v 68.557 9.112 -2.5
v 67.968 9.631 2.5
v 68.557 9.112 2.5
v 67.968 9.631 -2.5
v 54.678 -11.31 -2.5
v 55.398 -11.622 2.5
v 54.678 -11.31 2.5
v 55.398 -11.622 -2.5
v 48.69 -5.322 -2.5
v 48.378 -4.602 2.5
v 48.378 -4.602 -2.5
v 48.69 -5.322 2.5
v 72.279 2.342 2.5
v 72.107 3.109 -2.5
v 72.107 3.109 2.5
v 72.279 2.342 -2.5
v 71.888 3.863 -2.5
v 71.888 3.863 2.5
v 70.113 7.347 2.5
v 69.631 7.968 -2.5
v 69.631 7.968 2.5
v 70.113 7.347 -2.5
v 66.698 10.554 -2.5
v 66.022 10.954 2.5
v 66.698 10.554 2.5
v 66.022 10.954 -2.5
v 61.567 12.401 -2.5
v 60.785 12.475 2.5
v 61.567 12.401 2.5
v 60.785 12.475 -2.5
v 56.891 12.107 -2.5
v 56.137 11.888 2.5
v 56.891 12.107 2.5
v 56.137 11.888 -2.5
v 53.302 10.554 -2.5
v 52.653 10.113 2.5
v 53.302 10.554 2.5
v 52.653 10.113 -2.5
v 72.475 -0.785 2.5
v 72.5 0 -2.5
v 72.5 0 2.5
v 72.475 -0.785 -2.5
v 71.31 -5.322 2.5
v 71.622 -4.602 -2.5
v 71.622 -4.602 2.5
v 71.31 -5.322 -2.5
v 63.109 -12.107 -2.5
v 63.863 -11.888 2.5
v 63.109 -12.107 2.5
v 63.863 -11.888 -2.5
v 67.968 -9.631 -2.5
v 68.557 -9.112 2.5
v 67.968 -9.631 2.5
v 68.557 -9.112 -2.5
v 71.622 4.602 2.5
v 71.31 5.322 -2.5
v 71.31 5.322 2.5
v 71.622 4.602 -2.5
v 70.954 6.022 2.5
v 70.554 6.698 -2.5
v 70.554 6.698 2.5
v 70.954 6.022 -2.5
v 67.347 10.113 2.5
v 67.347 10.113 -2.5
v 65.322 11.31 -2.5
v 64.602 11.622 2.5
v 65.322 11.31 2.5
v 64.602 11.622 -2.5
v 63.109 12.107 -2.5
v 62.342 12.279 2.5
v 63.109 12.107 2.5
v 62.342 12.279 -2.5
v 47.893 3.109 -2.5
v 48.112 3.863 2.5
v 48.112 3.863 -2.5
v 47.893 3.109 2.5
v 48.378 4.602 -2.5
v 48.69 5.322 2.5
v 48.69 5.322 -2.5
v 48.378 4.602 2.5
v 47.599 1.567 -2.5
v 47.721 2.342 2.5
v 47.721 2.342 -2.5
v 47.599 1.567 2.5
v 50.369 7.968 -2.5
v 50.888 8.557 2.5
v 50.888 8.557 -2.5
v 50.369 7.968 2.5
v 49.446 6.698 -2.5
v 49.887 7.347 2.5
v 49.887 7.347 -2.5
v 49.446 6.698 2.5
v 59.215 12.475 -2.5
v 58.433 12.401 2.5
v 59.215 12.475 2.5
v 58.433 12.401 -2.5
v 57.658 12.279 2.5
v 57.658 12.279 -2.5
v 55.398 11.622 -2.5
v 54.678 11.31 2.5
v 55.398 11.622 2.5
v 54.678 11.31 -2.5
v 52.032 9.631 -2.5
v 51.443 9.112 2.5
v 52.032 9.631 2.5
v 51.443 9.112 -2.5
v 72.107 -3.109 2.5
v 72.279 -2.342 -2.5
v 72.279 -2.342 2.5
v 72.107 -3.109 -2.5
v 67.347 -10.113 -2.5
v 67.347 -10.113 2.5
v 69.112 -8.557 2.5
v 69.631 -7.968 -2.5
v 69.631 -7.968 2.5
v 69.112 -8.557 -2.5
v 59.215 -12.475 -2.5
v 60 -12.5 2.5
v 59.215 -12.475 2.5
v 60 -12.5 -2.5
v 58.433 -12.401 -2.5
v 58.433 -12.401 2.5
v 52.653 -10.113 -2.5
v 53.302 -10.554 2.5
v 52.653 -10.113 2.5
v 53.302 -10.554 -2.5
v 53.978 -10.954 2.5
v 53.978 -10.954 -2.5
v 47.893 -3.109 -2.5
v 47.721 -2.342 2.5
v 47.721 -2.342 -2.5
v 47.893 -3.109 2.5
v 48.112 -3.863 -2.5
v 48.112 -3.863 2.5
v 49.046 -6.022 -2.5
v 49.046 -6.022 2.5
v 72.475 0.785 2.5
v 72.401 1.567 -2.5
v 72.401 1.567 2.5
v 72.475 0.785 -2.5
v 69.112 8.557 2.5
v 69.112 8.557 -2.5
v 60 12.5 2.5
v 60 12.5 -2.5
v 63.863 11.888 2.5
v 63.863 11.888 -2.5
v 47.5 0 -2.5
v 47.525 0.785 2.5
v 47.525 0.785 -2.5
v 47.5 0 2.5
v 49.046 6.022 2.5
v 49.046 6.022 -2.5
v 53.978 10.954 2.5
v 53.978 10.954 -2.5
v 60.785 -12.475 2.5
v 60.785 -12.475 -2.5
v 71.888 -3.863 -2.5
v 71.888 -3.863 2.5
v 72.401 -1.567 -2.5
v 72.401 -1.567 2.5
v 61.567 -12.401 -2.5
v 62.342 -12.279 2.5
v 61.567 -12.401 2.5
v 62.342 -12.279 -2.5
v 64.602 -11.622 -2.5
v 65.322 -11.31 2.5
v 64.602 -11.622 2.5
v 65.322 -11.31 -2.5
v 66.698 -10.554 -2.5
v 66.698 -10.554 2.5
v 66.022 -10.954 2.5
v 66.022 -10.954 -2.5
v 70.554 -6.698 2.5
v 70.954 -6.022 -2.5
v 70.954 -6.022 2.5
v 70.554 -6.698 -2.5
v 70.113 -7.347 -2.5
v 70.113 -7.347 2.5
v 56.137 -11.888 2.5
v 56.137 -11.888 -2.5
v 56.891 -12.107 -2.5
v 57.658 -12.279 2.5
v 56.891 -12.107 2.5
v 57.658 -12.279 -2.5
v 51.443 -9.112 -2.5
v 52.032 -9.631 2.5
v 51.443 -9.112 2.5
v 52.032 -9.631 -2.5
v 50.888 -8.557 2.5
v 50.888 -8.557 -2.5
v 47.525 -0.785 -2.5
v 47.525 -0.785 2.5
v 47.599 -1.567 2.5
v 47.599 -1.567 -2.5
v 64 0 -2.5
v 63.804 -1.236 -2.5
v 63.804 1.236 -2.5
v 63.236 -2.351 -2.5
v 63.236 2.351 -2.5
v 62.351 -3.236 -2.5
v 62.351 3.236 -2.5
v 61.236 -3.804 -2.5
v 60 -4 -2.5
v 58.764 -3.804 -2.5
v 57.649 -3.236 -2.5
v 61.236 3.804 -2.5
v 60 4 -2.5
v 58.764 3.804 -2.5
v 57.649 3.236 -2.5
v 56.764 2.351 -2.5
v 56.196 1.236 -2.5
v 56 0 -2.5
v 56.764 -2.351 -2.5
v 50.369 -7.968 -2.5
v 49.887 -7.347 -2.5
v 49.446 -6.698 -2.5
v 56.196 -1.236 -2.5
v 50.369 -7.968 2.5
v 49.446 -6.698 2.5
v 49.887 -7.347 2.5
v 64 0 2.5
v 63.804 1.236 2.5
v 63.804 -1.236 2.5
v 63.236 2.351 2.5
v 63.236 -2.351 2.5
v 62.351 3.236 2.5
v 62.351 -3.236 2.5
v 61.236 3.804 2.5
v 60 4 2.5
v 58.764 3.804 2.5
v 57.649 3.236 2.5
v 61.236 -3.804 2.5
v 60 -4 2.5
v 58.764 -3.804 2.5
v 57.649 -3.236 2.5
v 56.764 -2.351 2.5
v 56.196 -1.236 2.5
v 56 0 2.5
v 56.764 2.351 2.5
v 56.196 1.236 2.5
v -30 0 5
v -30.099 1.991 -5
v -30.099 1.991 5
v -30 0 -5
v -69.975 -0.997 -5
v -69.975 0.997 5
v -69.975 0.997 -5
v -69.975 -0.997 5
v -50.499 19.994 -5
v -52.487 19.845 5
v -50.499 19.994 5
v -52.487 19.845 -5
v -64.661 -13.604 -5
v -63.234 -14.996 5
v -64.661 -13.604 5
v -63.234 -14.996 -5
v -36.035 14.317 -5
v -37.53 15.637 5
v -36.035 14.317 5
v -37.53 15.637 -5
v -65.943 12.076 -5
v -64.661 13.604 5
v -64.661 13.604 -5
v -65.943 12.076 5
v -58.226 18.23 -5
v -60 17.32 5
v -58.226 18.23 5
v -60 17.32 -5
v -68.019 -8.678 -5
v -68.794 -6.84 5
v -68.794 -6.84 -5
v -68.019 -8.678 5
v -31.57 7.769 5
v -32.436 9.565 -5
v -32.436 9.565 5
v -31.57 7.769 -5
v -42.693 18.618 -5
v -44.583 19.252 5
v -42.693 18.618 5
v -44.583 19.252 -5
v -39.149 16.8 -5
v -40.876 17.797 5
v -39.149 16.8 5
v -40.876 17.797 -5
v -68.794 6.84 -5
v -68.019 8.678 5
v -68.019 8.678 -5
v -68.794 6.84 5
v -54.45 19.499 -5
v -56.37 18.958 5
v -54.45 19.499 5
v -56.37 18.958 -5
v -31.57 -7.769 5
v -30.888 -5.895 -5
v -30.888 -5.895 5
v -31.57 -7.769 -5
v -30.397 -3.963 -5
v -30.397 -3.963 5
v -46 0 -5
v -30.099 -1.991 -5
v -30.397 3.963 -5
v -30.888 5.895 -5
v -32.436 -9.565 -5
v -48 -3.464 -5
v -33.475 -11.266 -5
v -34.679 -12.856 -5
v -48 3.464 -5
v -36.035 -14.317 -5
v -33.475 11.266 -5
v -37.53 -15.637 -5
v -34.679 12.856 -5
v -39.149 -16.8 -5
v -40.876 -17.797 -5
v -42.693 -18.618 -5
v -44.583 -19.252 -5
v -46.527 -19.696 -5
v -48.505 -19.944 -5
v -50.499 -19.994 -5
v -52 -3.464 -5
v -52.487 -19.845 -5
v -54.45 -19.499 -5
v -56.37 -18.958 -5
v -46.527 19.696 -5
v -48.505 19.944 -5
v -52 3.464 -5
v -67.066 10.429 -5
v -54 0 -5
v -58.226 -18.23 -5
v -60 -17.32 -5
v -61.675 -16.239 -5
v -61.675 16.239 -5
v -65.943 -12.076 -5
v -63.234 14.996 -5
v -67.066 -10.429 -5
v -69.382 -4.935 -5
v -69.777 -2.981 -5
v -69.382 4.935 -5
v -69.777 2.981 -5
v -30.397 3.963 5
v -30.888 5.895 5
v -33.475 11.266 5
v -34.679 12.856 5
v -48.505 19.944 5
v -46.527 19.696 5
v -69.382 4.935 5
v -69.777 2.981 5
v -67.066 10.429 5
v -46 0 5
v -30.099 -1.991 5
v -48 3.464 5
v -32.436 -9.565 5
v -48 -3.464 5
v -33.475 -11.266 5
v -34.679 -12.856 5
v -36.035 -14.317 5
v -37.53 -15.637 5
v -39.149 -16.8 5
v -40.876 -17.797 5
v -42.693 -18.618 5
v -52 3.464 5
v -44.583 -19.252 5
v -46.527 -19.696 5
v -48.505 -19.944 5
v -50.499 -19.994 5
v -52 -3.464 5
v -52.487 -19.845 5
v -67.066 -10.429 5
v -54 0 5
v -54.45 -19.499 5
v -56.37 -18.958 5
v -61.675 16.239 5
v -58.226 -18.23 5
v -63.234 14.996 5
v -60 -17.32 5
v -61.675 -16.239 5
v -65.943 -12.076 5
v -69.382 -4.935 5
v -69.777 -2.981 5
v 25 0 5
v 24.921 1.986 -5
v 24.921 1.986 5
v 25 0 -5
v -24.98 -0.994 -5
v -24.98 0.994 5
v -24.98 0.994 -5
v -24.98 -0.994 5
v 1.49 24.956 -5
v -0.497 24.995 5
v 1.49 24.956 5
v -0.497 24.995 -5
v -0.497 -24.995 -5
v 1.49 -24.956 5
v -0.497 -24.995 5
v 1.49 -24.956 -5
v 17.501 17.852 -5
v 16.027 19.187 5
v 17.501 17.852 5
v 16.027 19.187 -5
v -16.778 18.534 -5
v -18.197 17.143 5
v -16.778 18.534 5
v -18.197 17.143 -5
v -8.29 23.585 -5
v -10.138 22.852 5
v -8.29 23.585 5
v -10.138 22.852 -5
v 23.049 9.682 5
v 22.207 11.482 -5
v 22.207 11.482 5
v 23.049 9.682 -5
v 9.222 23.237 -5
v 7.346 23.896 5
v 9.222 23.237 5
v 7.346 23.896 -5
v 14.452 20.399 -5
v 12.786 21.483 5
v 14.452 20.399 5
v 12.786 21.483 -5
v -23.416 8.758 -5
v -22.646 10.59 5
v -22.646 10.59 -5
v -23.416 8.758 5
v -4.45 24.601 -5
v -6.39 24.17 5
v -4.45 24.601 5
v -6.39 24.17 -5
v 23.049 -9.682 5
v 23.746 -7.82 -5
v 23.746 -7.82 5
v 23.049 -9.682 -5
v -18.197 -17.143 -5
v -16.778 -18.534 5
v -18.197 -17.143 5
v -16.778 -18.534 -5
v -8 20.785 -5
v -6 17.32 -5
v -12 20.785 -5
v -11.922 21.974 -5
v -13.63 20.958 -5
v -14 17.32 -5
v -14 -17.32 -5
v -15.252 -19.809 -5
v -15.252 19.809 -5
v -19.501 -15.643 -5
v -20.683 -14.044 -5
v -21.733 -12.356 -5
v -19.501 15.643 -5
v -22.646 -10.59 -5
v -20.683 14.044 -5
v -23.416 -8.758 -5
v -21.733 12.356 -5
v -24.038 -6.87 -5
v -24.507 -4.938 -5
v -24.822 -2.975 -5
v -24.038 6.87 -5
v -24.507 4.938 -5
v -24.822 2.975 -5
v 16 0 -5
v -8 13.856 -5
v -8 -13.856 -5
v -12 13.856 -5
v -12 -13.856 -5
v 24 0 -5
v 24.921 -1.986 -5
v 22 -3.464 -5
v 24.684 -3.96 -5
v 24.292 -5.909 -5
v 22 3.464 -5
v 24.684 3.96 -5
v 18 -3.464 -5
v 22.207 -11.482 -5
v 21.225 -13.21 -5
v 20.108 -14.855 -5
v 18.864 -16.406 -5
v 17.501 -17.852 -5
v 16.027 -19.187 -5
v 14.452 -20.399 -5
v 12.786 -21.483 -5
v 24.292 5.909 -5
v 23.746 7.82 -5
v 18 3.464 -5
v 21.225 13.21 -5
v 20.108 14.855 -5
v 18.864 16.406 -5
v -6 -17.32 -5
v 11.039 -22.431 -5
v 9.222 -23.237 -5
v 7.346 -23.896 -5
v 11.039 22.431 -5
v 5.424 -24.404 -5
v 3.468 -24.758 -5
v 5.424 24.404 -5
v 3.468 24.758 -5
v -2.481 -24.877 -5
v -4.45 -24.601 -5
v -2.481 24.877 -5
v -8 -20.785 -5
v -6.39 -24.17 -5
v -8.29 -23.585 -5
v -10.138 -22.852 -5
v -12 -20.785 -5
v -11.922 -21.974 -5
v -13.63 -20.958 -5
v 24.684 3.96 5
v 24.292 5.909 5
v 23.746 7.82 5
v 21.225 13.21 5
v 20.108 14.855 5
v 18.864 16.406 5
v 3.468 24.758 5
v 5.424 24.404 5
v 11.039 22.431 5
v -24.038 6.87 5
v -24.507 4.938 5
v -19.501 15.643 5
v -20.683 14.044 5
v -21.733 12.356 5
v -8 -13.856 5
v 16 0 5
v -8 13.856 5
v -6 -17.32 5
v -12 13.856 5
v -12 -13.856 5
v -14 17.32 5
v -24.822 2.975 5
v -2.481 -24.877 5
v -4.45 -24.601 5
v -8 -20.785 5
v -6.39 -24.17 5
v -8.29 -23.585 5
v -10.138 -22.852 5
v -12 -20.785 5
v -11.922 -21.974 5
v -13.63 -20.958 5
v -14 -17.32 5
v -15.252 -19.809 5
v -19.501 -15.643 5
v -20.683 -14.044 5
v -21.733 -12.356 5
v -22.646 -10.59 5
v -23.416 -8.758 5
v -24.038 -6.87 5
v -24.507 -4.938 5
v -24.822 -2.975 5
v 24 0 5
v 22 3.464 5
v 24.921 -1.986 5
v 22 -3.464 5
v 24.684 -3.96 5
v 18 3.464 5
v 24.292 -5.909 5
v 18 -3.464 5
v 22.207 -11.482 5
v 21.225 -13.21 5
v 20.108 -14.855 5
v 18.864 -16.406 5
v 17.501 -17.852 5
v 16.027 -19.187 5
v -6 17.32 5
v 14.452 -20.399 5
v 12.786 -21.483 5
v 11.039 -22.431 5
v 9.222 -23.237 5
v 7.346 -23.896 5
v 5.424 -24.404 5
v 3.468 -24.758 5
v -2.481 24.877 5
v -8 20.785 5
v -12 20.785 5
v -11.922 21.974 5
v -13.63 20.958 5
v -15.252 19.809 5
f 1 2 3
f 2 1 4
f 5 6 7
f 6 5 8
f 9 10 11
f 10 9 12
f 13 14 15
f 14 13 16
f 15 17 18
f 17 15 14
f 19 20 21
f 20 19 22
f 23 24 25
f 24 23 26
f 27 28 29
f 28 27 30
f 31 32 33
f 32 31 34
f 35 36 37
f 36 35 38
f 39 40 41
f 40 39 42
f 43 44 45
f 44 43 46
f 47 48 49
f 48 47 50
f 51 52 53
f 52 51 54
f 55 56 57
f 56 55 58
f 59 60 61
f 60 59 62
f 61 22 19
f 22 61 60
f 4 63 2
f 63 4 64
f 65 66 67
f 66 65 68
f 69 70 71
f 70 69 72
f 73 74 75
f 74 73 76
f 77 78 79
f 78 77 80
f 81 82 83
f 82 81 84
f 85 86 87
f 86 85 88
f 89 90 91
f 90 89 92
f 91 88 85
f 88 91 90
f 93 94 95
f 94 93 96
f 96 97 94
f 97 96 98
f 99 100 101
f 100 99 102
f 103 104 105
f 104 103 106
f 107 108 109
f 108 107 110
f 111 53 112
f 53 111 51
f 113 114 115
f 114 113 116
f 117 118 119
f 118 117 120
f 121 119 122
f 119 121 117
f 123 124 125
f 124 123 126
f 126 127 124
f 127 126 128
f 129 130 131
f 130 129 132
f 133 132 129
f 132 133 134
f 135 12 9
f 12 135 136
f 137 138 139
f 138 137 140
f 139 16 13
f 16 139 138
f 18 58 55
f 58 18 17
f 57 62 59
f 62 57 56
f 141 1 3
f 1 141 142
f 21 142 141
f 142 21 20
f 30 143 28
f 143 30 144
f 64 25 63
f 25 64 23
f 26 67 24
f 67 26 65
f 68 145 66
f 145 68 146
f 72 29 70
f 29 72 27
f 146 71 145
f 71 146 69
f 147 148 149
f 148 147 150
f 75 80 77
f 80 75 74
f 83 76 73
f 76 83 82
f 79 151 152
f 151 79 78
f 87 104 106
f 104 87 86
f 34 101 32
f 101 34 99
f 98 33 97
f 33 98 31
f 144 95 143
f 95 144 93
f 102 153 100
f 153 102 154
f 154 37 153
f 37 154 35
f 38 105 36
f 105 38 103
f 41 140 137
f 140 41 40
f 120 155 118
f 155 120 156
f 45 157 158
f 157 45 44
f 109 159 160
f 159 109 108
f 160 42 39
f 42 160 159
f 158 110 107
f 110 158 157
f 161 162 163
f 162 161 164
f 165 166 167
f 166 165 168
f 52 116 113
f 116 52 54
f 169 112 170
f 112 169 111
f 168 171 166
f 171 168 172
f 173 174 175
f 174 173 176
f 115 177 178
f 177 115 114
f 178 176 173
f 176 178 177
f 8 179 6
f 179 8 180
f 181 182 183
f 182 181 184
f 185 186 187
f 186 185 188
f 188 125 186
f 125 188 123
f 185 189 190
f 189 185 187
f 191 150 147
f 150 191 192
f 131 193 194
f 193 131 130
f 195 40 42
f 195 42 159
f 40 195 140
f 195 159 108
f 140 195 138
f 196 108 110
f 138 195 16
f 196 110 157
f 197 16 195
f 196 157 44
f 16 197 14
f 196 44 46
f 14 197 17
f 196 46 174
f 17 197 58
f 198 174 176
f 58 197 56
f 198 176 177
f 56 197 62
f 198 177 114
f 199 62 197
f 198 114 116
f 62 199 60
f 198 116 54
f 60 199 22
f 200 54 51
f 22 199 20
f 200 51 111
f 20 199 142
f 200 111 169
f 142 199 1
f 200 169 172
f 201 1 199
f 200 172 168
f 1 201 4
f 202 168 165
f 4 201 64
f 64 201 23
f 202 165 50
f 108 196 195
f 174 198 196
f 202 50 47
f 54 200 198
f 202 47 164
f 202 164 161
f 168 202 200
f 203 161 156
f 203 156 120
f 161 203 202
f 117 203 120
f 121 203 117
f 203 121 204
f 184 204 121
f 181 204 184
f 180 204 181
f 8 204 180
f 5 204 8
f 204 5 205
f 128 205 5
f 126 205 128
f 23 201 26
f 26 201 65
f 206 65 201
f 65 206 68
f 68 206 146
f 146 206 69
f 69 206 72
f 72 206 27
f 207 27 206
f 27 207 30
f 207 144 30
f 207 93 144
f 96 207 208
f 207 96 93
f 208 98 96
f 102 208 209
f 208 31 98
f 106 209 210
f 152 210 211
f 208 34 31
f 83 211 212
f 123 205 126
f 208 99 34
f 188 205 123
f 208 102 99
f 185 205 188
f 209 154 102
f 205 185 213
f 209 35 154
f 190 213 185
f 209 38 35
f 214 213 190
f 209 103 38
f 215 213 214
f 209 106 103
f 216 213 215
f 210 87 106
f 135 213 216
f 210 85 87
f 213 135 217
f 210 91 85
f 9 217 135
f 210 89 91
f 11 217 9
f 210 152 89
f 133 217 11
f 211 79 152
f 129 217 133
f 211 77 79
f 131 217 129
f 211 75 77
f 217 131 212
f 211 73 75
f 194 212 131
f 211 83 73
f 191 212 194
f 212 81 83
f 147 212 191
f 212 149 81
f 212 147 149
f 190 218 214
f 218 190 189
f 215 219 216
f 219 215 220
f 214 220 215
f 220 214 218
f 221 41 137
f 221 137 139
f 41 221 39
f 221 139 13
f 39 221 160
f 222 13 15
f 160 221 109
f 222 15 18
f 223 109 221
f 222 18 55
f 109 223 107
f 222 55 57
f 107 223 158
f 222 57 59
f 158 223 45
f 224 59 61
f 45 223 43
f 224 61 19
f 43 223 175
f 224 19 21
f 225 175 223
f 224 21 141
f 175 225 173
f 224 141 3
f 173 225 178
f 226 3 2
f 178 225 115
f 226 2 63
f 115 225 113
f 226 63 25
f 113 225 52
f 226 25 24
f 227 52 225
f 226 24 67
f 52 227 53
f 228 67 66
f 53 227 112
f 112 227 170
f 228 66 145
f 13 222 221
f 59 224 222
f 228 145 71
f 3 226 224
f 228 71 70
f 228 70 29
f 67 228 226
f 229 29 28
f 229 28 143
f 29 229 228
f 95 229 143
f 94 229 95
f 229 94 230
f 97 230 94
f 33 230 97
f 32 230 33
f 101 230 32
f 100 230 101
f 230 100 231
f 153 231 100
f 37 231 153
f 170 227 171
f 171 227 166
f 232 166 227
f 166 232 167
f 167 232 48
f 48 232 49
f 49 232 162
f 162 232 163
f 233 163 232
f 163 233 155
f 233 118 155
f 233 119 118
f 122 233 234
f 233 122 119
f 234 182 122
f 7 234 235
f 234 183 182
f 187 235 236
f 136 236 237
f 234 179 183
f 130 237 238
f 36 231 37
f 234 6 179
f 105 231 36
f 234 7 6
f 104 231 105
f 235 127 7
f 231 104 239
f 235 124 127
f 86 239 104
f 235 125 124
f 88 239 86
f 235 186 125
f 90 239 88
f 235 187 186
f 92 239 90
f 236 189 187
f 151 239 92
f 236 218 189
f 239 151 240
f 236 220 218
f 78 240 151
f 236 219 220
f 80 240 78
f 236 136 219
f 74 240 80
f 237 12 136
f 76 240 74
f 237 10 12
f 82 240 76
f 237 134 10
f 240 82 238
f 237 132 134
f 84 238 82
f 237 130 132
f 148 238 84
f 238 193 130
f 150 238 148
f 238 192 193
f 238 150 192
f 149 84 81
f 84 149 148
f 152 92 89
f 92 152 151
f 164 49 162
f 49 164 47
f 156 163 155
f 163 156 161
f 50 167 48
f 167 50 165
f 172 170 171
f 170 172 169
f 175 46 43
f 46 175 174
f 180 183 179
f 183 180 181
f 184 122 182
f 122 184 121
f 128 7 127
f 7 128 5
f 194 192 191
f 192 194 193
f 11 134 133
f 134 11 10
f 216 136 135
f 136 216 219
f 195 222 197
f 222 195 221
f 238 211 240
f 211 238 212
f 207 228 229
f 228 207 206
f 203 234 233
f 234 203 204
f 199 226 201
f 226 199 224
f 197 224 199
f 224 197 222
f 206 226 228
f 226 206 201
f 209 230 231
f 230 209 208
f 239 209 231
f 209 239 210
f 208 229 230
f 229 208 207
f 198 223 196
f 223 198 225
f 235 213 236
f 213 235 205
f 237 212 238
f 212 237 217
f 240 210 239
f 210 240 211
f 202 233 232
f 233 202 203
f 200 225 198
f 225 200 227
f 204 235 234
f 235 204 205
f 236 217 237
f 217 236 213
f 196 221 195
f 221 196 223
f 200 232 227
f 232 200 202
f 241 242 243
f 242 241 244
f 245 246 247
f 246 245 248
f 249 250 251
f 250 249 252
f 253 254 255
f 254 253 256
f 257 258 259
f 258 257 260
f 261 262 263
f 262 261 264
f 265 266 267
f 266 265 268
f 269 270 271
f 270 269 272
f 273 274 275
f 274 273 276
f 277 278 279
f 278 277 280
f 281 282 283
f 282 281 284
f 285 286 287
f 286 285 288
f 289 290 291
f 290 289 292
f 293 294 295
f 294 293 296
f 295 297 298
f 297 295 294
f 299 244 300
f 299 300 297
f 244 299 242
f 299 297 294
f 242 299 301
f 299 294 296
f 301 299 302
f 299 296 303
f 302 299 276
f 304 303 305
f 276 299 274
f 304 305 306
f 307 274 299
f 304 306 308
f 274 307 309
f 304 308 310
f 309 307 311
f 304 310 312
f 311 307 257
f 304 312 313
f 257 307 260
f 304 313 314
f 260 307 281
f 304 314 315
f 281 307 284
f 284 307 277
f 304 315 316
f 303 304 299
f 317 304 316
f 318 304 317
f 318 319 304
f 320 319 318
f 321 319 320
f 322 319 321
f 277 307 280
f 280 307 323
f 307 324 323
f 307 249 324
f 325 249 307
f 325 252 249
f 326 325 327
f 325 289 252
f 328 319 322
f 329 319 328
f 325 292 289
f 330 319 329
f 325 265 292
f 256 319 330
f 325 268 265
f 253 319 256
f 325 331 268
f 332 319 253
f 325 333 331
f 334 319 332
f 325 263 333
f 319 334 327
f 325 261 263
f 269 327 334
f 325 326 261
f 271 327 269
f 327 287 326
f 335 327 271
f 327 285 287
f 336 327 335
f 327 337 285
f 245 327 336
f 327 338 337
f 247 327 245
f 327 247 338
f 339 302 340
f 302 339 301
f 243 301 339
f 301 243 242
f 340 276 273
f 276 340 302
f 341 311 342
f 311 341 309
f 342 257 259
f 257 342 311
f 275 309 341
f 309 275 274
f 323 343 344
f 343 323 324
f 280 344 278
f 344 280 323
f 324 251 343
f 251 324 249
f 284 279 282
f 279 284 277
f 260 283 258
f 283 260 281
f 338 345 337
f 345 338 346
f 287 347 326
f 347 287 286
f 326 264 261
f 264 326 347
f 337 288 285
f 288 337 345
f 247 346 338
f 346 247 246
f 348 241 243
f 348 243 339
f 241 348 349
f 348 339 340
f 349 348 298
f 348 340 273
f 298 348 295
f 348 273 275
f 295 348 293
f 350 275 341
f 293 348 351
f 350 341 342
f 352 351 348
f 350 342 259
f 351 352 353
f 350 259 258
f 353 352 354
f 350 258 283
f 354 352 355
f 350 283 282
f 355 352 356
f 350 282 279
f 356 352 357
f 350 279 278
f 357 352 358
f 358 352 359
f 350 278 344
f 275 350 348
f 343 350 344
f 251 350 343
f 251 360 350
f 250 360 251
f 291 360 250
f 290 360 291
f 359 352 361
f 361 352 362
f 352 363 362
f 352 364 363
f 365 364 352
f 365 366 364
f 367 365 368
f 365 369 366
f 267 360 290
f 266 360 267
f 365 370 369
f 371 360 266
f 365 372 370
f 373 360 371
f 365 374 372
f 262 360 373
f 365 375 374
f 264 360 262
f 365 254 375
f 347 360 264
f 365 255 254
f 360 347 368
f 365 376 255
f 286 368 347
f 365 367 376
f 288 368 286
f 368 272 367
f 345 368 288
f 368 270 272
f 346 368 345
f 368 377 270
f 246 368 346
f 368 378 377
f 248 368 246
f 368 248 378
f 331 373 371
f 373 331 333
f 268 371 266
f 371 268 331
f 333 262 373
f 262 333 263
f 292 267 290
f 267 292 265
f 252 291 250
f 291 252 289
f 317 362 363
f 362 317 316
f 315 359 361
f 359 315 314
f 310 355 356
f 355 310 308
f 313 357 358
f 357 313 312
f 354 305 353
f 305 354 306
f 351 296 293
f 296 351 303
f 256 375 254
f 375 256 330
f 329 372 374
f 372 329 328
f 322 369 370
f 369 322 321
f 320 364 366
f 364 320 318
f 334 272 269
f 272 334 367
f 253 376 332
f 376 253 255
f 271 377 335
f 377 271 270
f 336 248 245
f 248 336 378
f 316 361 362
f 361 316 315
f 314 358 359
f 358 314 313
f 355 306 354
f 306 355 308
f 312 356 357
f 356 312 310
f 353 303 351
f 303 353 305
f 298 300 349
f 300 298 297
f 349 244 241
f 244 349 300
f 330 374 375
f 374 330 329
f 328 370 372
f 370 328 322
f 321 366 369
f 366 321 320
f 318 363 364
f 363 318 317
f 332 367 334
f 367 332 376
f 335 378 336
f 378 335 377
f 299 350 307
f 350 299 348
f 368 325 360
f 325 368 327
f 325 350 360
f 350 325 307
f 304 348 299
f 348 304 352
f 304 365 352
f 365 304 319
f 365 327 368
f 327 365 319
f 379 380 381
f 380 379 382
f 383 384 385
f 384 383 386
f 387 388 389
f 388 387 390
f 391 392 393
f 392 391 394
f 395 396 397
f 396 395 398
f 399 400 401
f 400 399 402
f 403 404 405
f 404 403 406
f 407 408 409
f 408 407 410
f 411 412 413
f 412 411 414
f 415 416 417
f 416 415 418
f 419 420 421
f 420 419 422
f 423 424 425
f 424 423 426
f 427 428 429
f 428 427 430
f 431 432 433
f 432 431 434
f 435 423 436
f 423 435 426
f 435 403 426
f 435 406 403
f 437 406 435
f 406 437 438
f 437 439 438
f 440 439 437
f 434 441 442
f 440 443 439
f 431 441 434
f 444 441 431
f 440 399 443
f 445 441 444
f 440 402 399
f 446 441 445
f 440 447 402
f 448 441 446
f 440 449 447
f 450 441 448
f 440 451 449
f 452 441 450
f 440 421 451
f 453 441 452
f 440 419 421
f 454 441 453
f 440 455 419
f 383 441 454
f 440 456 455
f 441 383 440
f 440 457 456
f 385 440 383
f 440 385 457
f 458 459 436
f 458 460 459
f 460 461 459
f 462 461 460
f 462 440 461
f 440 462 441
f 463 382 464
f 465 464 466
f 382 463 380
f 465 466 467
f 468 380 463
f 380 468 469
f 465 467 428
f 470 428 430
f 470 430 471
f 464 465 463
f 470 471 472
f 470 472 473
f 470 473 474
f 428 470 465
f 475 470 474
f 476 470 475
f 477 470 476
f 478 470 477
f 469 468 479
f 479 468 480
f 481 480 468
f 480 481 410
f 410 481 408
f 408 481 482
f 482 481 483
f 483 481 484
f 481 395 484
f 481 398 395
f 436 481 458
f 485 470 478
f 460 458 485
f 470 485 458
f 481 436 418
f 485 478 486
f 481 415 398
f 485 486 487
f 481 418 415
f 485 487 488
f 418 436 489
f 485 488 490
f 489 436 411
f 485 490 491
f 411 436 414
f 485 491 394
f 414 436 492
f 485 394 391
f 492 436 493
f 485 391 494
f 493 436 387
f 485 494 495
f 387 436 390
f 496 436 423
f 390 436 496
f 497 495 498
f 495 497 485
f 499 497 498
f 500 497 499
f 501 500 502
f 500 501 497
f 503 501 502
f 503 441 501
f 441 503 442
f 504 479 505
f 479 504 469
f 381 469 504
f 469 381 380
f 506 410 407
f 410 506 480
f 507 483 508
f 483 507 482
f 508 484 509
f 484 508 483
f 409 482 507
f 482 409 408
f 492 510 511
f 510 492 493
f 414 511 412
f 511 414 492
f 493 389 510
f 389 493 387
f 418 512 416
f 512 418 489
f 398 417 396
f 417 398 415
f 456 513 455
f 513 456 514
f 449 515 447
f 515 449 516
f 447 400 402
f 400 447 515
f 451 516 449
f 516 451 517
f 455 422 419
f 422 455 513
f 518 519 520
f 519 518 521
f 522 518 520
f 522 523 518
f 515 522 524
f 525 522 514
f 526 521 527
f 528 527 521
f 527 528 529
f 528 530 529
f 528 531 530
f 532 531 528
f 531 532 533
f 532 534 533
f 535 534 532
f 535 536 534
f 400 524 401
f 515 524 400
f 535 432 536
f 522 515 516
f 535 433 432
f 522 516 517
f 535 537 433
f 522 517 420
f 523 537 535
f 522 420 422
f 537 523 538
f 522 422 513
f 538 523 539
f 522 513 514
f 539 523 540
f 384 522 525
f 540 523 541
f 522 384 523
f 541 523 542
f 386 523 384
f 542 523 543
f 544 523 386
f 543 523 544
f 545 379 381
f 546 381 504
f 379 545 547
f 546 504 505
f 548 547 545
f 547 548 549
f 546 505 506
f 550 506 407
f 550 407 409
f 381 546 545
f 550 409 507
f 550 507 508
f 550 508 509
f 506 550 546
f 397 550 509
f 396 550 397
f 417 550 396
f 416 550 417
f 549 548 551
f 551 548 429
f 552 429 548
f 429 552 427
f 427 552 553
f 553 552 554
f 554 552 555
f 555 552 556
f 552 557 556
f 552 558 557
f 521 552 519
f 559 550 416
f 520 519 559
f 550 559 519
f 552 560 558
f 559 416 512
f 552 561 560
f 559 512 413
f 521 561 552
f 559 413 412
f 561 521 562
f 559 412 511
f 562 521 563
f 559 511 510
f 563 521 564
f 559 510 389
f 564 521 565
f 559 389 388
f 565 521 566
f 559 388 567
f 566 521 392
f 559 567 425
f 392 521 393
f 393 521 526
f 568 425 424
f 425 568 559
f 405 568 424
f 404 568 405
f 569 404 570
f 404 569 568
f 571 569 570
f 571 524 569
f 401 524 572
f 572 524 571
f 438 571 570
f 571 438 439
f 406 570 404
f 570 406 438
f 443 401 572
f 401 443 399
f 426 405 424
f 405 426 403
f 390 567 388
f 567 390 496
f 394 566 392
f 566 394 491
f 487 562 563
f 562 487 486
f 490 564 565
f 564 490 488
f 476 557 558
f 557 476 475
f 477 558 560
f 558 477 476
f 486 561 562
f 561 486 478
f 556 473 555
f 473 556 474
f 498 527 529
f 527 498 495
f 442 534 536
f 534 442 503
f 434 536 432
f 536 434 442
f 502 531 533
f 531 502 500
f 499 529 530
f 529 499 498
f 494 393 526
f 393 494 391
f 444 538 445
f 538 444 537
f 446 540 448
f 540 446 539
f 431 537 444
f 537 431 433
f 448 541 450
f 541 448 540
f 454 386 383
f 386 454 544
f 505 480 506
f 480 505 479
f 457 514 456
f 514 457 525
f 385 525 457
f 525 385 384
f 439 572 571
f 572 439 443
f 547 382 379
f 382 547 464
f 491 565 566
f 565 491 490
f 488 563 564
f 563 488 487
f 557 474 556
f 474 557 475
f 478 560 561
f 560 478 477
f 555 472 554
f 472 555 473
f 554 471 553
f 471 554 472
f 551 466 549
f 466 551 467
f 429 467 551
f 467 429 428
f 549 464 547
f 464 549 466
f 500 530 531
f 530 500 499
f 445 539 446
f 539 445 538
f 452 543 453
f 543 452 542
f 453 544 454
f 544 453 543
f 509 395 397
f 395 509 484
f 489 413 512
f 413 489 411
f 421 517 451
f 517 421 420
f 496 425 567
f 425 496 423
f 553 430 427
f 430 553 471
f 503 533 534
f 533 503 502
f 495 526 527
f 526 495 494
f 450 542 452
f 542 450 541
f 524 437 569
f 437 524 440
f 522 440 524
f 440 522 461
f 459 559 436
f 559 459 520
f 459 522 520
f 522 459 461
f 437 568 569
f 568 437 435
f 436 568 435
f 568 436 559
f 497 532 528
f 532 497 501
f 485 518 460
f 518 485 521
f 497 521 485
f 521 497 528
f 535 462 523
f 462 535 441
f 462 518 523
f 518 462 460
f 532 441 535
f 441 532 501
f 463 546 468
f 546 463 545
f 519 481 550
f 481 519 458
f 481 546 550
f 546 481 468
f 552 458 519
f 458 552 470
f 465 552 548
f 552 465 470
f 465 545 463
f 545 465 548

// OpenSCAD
// Restando
color("red")
translate([60,0,0])
difference() {
cylinder(d=25,h=5,center=true,$fn=100);

cylinder(d=8,h=20,$fn=20,center=true);
    
}

// Rueda con tuerca insertadas en el centro

color("blue")
translate([-50,0,0])
difference()
{
    cylinder(d=40,h=10,$fa=1,center=true);
    
    cylinder(d=8,h=20,$fn=6,center=true);
    
}


difference()
{
    cylinder(d=50,h=10,$fa=1,center=true);
    
    translate([20,0,0])
       cylinder(d=8,h=40,$fn=6,center=true);
    
    // primero se aplica la translación y luego la rotación
    rotate([0,0,120]) 
        translate([20,0,0])
            cylinder(d=8,h=40,$fn=6,center=true);
    
    rotate([0,0,240])
        translate([20,0,0])
            cylinder(d=8,h=40,$fn=6,center=true);
    
    
    
    
}
